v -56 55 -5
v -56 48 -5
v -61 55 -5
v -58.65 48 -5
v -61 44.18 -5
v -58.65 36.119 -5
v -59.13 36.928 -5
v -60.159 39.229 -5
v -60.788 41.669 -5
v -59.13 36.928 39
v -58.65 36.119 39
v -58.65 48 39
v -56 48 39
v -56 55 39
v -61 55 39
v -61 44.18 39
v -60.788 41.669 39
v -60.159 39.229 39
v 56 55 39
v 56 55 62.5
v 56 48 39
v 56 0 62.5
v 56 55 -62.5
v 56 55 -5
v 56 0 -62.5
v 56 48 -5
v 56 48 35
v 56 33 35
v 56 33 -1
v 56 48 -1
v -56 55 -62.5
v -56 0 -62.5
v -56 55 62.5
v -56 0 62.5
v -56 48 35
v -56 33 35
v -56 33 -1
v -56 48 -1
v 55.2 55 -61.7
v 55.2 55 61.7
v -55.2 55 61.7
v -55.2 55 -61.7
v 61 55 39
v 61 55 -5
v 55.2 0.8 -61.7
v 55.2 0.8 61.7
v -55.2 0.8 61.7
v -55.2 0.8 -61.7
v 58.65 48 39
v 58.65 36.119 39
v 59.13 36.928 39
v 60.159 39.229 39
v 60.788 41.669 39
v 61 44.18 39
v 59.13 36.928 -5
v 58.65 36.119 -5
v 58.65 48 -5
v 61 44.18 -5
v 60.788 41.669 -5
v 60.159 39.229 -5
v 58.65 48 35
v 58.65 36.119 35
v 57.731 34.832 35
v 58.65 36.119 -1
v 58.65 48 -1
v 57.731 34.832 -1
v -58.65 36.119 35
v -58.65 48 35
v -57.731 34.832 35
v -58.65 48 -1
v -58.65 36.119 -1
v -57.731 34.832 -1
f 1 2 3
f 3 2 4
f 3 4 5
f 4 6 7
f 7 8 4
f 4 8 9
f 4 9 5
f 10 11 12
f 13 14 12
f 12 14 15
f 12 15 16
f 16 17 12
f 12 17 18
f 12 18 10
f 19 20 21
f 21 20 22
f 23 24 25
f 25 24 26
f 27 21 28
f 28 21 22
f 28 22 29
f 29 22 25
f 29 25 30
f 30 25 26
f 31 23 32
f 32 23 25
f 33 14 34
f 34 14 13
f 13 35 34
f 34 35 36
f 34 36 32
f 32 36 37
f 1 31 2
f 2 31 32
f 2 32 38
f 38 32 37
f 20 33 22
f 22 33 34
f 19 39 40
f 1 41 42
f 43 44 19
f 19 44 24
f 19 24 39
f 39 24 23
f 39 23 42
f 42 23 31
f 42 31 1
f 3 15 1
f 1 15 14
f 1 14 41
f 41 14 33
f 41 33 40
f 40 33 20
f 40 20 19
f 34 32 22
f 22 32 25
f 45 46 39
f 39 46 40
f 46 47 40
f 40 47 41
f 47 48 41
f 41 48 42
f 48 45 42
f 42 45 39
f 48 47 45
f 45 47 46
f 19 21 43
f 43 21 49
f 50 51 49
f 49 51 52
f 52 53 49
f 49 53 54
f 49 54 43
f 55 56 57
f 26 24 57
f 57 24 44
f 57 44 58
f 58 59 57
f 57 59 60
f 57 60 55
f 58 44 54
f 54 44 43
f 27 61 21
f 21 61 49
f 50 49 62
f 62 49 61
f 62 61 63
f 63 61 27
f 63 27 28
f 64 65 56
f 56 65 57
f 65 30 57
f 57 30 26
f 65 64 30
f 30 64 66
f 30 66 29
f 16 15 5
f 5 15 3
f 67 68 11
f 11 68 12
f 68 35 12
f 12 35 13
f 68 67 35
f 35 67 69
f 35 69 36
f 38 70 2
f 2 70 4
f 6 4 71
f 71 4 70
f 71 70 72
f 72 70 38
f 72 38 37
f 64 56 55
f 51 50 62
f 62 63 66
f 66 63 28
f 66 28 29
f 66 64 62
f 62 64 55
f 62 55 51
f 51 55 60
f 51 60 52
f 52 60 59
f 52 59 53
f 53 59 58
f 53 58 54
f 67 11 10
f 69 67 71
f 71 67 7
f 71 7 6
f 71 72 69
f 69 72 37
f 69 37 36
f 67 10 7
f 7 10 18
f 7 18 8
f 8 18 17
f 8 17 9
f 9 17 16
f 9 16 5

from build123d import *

# Parameters (mm, degrees)
SKETCH1_W           = 112
SKETCH1_H           = 125
BOSS_EXTRUDE1_DEPTH = 55
SKETCH2_W           = 110.4
SKETCH2_H           = 123.4
CUT_EXTRUDE1_DEPTH  = 54.2
SKETCH3_W           = 44
SKETCH3_H           = 22
BOSS_EXTRUDE2_DEPTH = 5
SKETCH4_W           = 2.65
SKETCH4_H           = 15
CUT_EXTRUDE2_DEPTH  = 4
SKETCH6_W           = 2.65
SKETCH6_H           = 15
CUT_EXTRUDE3_DEPTH  = 4
FILLET1_R           = 15
FILLET2_R           = 15


with BuildPart() as part:
    # Sketch1 → Boss-Extrude1 (new body)
    with BuildSketch(Plane(origin=(0, 0, 0), x_dir=(1, 0, 0), z_dir=(0, 1, 0))):
        Rectangle(SKETCH1_W, SKETCH1_H)
    extrude(amount=BOSS_EXTRUDE1_DEPTH)

    # Sketch2 → Cut-Extrude1 (cut)
    with BuildSketch(Plane(origin=(0, 55, 0), x_dir=(1, 0, 0), z_dir=(0, 1, 0))):
        Rectangle(SKETCH2_W, SKETCH2_H)
    extrude(amount=-CUT_EXTRUDE1_DEPTH, mode=Mode.SUBTRACT)

    # Sketch3 → Boss-Extrude2 (add)
    with BuildSketch(Plane(origin=(56, 0, 0), x_dir=(0, 0, -1), z_dir=(1, 0, 0))):
        with Locations((-17, 44)):
            Rectangle(SKETCH3_W, SKETCH3_H)
    boss_extrude2 = extrude(amount=BOSS_EXTRUDE2_DEPTH)

    # Sketch4 → Cut-Extrude2 (cut)
    with BuildSketch(Plane.XY.offset(39)):
        with Locations((57.325, 40.5)):
            Rectangle(SKETCH4_W, SKETCH4_H)
    cut_extrude2 = extrude(amount=-CUT_EXTRUDE2_DEPTH, mode=Mode.SUBTRACT)

    # Sketch6 → Cut-Extrude3 (cut)
    with BuildSketch(Plane(origin=(0, 0, -5), x_dir=(-1, 0, 0), z_dir=(0, 0, -1))):
        with Locations((-57.325, 40.5)):
            Rectangle(SKETCH6_W, SKETCH6_H)
    cut_extrude3 = extrude(amount=-CUT_EXTRUDE3_DEPTH, mode=Mode.SUBTRACT)

    # Mirror5: Boss-Extrude2 across plane
    add(boss_extrude2.mirror(Plane(origin=(0, 0, 0), x_dir=(0, 0, 1), z_dir=(1, 0, 0))))

    # Mirror6: Cut-Extrude2 across plane
    add(cut_extrude2.mirror(Plane(origin=(0, 0, 0), x_dir=(0, 0, 1), z_dir=(1, 0, 0))), mode=Mode.SUBTRACT)

    # Mirror7: Cut-Extrude3 across plane
    add(cut_extrude3.mirror(Plane(origin=(0, 0, 0), x_dir=(0, 0, 1), z_dir=(1, 0, 0))), mode=Mode.SUBTRACT)

    # Fillet1
    # the kernel refuses this fillet: 15 mm, written as the material it takes off along each edge
    with BuildSketch(Plane(origin=(61, 33, -32.950849719), x_dir=(-1, 0, 0), z_dir=(0, 0, 1))) as fillet1_piece_1:
        with BuildLine():
            CenterArc((15, -11.180339887), FILLET1_R, 131.810314896, 48.189685104)
            Line((0, -11.180339887), (-0.3, -11.180339887))
            Line((-0.3, -11.180339887), (-0.3, 0))
            Line((-0.3, 0), (0, 0.3))
            ThreePointArc((0, 0.3), (2.5, 0.3), (4.8, 0.223606798))
            Line((4.8, 0.223606798), (5, 0))
        make_face()
    extrude(amount=99.901699437, mode=Mode.SUBTRACT)

    # Fillet2
    # the kernel refuses this fillet: 15 mm, written as the material it takes off along each edge
    with BuildSketch(Plane(origin=(-61, 33, -32.950849719), x_dir=(1, 0, 0), z_dir=(0, 0, 1))) as fillet2_piece_1:
        with BuildLine():
            CenterArc((15, 11.180339887), FILLET2_R, 180, 48.189685104)
            Line((0, 11.180339887), (-0.3, 11.180339887))
            Line((-0.3, 11.180339887), (-0.3, 0))
            Line((-0.3, 0), (0, -0.3))
            ThreePointArc((0, -0.3), (2.5, -0.3), (4.8, -0.223606798))
            Line((4.8, -0.223606798), (5, 0))
        make_face()
    extrude(amount=99.901699437, mode=Mode.SUBTRACT)


solid = part.part
